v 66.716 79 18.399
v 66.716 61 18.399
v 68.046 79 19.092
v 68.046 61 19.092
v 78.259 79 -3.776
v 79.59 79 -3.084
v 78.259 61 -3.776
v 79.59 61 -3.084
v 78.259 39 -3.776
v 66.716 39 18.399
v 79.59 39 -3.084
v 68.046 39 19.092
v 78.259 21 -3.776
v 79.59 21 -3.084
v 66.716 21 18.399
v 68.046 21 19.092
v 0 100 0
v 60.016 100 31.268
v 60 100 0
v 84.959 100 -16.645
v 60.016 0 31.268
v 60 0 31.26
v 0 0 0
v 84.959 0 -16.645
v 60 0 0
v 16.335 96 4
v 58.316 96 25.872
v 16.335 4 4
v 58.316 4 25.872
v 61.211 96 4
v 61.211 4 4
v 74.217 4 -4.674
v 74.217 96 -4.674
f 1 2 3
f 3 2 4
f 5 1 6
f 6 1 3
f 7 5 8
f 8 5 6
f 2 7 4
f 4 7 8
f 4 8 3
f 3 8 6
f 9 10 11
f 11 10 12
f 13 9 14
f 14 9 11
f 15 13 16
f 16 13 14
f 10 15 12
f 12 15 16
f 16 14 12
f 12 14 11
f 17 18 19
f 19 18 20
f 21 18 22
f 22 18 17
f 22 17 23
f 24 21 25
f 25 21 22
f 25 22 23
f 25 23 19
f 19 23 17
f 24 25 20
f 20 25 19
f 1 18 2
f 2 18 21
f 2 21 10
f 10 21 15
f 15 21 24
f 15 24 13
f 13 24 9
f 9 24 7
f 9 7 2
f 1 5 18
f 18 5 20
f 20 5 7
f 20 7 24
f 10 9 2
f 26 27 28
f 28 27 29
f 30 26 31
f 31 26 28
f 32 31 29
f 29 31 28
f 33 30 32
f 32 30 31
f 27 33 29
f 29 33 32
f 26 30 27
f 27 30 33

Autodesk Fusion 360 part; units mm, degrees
sketch "Esquisse1" plane through (0, 0, 0) normal (0, 1, 0) x (1, 0, 0)
  line L0 (0, 0) -> (60, 0)
  line L1 (60, 0) -> (84.9586, 16.6453)
  line L2 (84.9586, 16.6453) -> (60.0163, -31.2683)
  line L3 (60.0163, -31.2683) -> (0, 0)
  line L4 (61.2115, -4) -> (74.217, 4.6736)
  line L5 (74.217, 4.6736) -> (58.3159, -25.8721)
  line L6 (58.3159, -25.8721) -> (16.3347, -4)
  line L7 (16.3347, -4) -> (61.2115, -4)
  dimension "d1" = 60
  dimension "d2" = 30
  dimension "d3" = 146.3
  dimension "d4" = 28.8
  dimension "d5" = 54.017
  dimension "d6" = 4
extrude "Extrusion1" add sketch "Esquisse1" along normal blind 100
sketch "Esquisse2" plane through (0, 0, 0) normal (0, 1, 0) x (1, 0, 0)
  line L0 (0, 0) -> (60, 0)
  line L1 (60, 0) -> (84.9586, 16.6453)
  line L2 (84.9586, 16.6453) -> (60, -31.2598)
  line L3 (60, -31.2598) -> (0, 0)
  dimension "d9" = 60
  dimension "d10" = 146.3
  dimension "d11" = 30
  dimension "d12" = 54.017
  dimension "d13" = 28.78
sketch "Esquisse3" plane through (0, 0, 0) normal (0, 1, 0) x (1, 0, 0)
extrude "Extrusion2" add sketch "Esquisse2" along normal blind 4
sketch "Esquisse5" plane through (0, 100, 0) normal (0, 1, 0) x (-1, 0, 0)
  line L0 (-58.3159, 25.8721) -> (-16.3347, 4)
  line L1 (-16.3347, 4) -> (-61.2115, 4)
  line L2 (-61.2115, 4) -> (-74.217, -4.6736)
  line L3 (-74.217, -4.6736) -> (-58.3159, 25.8721)
  line L4 (-60.0163, 31.2683) -> (-84.9586, -16.6453)
  line L5 (-84.9586, -16.6453) -> (-60, 0)
  line L6 (-60, 0) -> (0, 0)
  line L7 (0, 0) -> (-60.0163, 31.2683)
sketch "Esquisse6" plane through (0, 100, 0) normal (0, 1, 0) x (-1, 0, 0)
  line L0 (0, 0) -> (-60, 0)
  line L1 (-60, 0) -> (-84.9586, -16.6453)
  line L2 (-84.9586, -16.6453) -> (-60.0133, 31.2668)
  line L3 (-60.0133, 31.2668) -> (0, 0)
  dimension "d21" = 60
  dimension "d22" = 146.3
  dimension "d23" = 30
  dimension "d24" = 54.017
  dimension "d25" = 28.796
extrude "Extrusion3" add sketch "Esquisse6" against normal blind 4
sketch "Esquisse7" plane through (60.0269, 0, 31.248) normal (0.887, 0, 0.4617) x (0, 1, 0)
  line L0 (0, 0.0229) -> (0, -53.9941)
  line L1 (0, -53.9941) -> (100, -53.9941)
  line L2 (100, -53.9941) -> (100, 0.0229)
  line L3 (100, 0.0229) -> (0, 0.0229)
  line L4 (39, -39.4856) -> (21, -39.4856)
  line L5 (21, -39.4856) -> (21, -14.4856)
  line L6 (21, -14.4856) -> (39, -14.4856)
  line L7 (39, -14.4856) -> (39, -39.4856)
  line L8 (39, -39.4856) -> (21, -14.4856) construction
  line L9 (21, -39.4856) -> (39, -14.4856) construction
  line L10 (61, -39.4856) -> (79, -39.4856)
  line L11 (79, -39.4856) -> (79, -14.4856)
  line L12 (79, -14.4856) -> (61, -14.4856)
  line L13 (61, -14.4856) -> (61, -39.4856)
  line L14 (61, -39.4856) -> (79, -14.4856) construction
  line L15 (79, -39.4856) -> (61, -14.4856) construction
  point P0 (30, -26.9856)
  point P1 (70, -26.9856)
  dimension "d32" = 18
  dimension "d33" = 25
  dimension "d34" = 18
  dimension "d35" = 25
extrude "Extrusion4" add sketch "Esquisse7" along normal blind 1.5 contours L4 L5 L6 L7 | L10 L11 L12 L13
